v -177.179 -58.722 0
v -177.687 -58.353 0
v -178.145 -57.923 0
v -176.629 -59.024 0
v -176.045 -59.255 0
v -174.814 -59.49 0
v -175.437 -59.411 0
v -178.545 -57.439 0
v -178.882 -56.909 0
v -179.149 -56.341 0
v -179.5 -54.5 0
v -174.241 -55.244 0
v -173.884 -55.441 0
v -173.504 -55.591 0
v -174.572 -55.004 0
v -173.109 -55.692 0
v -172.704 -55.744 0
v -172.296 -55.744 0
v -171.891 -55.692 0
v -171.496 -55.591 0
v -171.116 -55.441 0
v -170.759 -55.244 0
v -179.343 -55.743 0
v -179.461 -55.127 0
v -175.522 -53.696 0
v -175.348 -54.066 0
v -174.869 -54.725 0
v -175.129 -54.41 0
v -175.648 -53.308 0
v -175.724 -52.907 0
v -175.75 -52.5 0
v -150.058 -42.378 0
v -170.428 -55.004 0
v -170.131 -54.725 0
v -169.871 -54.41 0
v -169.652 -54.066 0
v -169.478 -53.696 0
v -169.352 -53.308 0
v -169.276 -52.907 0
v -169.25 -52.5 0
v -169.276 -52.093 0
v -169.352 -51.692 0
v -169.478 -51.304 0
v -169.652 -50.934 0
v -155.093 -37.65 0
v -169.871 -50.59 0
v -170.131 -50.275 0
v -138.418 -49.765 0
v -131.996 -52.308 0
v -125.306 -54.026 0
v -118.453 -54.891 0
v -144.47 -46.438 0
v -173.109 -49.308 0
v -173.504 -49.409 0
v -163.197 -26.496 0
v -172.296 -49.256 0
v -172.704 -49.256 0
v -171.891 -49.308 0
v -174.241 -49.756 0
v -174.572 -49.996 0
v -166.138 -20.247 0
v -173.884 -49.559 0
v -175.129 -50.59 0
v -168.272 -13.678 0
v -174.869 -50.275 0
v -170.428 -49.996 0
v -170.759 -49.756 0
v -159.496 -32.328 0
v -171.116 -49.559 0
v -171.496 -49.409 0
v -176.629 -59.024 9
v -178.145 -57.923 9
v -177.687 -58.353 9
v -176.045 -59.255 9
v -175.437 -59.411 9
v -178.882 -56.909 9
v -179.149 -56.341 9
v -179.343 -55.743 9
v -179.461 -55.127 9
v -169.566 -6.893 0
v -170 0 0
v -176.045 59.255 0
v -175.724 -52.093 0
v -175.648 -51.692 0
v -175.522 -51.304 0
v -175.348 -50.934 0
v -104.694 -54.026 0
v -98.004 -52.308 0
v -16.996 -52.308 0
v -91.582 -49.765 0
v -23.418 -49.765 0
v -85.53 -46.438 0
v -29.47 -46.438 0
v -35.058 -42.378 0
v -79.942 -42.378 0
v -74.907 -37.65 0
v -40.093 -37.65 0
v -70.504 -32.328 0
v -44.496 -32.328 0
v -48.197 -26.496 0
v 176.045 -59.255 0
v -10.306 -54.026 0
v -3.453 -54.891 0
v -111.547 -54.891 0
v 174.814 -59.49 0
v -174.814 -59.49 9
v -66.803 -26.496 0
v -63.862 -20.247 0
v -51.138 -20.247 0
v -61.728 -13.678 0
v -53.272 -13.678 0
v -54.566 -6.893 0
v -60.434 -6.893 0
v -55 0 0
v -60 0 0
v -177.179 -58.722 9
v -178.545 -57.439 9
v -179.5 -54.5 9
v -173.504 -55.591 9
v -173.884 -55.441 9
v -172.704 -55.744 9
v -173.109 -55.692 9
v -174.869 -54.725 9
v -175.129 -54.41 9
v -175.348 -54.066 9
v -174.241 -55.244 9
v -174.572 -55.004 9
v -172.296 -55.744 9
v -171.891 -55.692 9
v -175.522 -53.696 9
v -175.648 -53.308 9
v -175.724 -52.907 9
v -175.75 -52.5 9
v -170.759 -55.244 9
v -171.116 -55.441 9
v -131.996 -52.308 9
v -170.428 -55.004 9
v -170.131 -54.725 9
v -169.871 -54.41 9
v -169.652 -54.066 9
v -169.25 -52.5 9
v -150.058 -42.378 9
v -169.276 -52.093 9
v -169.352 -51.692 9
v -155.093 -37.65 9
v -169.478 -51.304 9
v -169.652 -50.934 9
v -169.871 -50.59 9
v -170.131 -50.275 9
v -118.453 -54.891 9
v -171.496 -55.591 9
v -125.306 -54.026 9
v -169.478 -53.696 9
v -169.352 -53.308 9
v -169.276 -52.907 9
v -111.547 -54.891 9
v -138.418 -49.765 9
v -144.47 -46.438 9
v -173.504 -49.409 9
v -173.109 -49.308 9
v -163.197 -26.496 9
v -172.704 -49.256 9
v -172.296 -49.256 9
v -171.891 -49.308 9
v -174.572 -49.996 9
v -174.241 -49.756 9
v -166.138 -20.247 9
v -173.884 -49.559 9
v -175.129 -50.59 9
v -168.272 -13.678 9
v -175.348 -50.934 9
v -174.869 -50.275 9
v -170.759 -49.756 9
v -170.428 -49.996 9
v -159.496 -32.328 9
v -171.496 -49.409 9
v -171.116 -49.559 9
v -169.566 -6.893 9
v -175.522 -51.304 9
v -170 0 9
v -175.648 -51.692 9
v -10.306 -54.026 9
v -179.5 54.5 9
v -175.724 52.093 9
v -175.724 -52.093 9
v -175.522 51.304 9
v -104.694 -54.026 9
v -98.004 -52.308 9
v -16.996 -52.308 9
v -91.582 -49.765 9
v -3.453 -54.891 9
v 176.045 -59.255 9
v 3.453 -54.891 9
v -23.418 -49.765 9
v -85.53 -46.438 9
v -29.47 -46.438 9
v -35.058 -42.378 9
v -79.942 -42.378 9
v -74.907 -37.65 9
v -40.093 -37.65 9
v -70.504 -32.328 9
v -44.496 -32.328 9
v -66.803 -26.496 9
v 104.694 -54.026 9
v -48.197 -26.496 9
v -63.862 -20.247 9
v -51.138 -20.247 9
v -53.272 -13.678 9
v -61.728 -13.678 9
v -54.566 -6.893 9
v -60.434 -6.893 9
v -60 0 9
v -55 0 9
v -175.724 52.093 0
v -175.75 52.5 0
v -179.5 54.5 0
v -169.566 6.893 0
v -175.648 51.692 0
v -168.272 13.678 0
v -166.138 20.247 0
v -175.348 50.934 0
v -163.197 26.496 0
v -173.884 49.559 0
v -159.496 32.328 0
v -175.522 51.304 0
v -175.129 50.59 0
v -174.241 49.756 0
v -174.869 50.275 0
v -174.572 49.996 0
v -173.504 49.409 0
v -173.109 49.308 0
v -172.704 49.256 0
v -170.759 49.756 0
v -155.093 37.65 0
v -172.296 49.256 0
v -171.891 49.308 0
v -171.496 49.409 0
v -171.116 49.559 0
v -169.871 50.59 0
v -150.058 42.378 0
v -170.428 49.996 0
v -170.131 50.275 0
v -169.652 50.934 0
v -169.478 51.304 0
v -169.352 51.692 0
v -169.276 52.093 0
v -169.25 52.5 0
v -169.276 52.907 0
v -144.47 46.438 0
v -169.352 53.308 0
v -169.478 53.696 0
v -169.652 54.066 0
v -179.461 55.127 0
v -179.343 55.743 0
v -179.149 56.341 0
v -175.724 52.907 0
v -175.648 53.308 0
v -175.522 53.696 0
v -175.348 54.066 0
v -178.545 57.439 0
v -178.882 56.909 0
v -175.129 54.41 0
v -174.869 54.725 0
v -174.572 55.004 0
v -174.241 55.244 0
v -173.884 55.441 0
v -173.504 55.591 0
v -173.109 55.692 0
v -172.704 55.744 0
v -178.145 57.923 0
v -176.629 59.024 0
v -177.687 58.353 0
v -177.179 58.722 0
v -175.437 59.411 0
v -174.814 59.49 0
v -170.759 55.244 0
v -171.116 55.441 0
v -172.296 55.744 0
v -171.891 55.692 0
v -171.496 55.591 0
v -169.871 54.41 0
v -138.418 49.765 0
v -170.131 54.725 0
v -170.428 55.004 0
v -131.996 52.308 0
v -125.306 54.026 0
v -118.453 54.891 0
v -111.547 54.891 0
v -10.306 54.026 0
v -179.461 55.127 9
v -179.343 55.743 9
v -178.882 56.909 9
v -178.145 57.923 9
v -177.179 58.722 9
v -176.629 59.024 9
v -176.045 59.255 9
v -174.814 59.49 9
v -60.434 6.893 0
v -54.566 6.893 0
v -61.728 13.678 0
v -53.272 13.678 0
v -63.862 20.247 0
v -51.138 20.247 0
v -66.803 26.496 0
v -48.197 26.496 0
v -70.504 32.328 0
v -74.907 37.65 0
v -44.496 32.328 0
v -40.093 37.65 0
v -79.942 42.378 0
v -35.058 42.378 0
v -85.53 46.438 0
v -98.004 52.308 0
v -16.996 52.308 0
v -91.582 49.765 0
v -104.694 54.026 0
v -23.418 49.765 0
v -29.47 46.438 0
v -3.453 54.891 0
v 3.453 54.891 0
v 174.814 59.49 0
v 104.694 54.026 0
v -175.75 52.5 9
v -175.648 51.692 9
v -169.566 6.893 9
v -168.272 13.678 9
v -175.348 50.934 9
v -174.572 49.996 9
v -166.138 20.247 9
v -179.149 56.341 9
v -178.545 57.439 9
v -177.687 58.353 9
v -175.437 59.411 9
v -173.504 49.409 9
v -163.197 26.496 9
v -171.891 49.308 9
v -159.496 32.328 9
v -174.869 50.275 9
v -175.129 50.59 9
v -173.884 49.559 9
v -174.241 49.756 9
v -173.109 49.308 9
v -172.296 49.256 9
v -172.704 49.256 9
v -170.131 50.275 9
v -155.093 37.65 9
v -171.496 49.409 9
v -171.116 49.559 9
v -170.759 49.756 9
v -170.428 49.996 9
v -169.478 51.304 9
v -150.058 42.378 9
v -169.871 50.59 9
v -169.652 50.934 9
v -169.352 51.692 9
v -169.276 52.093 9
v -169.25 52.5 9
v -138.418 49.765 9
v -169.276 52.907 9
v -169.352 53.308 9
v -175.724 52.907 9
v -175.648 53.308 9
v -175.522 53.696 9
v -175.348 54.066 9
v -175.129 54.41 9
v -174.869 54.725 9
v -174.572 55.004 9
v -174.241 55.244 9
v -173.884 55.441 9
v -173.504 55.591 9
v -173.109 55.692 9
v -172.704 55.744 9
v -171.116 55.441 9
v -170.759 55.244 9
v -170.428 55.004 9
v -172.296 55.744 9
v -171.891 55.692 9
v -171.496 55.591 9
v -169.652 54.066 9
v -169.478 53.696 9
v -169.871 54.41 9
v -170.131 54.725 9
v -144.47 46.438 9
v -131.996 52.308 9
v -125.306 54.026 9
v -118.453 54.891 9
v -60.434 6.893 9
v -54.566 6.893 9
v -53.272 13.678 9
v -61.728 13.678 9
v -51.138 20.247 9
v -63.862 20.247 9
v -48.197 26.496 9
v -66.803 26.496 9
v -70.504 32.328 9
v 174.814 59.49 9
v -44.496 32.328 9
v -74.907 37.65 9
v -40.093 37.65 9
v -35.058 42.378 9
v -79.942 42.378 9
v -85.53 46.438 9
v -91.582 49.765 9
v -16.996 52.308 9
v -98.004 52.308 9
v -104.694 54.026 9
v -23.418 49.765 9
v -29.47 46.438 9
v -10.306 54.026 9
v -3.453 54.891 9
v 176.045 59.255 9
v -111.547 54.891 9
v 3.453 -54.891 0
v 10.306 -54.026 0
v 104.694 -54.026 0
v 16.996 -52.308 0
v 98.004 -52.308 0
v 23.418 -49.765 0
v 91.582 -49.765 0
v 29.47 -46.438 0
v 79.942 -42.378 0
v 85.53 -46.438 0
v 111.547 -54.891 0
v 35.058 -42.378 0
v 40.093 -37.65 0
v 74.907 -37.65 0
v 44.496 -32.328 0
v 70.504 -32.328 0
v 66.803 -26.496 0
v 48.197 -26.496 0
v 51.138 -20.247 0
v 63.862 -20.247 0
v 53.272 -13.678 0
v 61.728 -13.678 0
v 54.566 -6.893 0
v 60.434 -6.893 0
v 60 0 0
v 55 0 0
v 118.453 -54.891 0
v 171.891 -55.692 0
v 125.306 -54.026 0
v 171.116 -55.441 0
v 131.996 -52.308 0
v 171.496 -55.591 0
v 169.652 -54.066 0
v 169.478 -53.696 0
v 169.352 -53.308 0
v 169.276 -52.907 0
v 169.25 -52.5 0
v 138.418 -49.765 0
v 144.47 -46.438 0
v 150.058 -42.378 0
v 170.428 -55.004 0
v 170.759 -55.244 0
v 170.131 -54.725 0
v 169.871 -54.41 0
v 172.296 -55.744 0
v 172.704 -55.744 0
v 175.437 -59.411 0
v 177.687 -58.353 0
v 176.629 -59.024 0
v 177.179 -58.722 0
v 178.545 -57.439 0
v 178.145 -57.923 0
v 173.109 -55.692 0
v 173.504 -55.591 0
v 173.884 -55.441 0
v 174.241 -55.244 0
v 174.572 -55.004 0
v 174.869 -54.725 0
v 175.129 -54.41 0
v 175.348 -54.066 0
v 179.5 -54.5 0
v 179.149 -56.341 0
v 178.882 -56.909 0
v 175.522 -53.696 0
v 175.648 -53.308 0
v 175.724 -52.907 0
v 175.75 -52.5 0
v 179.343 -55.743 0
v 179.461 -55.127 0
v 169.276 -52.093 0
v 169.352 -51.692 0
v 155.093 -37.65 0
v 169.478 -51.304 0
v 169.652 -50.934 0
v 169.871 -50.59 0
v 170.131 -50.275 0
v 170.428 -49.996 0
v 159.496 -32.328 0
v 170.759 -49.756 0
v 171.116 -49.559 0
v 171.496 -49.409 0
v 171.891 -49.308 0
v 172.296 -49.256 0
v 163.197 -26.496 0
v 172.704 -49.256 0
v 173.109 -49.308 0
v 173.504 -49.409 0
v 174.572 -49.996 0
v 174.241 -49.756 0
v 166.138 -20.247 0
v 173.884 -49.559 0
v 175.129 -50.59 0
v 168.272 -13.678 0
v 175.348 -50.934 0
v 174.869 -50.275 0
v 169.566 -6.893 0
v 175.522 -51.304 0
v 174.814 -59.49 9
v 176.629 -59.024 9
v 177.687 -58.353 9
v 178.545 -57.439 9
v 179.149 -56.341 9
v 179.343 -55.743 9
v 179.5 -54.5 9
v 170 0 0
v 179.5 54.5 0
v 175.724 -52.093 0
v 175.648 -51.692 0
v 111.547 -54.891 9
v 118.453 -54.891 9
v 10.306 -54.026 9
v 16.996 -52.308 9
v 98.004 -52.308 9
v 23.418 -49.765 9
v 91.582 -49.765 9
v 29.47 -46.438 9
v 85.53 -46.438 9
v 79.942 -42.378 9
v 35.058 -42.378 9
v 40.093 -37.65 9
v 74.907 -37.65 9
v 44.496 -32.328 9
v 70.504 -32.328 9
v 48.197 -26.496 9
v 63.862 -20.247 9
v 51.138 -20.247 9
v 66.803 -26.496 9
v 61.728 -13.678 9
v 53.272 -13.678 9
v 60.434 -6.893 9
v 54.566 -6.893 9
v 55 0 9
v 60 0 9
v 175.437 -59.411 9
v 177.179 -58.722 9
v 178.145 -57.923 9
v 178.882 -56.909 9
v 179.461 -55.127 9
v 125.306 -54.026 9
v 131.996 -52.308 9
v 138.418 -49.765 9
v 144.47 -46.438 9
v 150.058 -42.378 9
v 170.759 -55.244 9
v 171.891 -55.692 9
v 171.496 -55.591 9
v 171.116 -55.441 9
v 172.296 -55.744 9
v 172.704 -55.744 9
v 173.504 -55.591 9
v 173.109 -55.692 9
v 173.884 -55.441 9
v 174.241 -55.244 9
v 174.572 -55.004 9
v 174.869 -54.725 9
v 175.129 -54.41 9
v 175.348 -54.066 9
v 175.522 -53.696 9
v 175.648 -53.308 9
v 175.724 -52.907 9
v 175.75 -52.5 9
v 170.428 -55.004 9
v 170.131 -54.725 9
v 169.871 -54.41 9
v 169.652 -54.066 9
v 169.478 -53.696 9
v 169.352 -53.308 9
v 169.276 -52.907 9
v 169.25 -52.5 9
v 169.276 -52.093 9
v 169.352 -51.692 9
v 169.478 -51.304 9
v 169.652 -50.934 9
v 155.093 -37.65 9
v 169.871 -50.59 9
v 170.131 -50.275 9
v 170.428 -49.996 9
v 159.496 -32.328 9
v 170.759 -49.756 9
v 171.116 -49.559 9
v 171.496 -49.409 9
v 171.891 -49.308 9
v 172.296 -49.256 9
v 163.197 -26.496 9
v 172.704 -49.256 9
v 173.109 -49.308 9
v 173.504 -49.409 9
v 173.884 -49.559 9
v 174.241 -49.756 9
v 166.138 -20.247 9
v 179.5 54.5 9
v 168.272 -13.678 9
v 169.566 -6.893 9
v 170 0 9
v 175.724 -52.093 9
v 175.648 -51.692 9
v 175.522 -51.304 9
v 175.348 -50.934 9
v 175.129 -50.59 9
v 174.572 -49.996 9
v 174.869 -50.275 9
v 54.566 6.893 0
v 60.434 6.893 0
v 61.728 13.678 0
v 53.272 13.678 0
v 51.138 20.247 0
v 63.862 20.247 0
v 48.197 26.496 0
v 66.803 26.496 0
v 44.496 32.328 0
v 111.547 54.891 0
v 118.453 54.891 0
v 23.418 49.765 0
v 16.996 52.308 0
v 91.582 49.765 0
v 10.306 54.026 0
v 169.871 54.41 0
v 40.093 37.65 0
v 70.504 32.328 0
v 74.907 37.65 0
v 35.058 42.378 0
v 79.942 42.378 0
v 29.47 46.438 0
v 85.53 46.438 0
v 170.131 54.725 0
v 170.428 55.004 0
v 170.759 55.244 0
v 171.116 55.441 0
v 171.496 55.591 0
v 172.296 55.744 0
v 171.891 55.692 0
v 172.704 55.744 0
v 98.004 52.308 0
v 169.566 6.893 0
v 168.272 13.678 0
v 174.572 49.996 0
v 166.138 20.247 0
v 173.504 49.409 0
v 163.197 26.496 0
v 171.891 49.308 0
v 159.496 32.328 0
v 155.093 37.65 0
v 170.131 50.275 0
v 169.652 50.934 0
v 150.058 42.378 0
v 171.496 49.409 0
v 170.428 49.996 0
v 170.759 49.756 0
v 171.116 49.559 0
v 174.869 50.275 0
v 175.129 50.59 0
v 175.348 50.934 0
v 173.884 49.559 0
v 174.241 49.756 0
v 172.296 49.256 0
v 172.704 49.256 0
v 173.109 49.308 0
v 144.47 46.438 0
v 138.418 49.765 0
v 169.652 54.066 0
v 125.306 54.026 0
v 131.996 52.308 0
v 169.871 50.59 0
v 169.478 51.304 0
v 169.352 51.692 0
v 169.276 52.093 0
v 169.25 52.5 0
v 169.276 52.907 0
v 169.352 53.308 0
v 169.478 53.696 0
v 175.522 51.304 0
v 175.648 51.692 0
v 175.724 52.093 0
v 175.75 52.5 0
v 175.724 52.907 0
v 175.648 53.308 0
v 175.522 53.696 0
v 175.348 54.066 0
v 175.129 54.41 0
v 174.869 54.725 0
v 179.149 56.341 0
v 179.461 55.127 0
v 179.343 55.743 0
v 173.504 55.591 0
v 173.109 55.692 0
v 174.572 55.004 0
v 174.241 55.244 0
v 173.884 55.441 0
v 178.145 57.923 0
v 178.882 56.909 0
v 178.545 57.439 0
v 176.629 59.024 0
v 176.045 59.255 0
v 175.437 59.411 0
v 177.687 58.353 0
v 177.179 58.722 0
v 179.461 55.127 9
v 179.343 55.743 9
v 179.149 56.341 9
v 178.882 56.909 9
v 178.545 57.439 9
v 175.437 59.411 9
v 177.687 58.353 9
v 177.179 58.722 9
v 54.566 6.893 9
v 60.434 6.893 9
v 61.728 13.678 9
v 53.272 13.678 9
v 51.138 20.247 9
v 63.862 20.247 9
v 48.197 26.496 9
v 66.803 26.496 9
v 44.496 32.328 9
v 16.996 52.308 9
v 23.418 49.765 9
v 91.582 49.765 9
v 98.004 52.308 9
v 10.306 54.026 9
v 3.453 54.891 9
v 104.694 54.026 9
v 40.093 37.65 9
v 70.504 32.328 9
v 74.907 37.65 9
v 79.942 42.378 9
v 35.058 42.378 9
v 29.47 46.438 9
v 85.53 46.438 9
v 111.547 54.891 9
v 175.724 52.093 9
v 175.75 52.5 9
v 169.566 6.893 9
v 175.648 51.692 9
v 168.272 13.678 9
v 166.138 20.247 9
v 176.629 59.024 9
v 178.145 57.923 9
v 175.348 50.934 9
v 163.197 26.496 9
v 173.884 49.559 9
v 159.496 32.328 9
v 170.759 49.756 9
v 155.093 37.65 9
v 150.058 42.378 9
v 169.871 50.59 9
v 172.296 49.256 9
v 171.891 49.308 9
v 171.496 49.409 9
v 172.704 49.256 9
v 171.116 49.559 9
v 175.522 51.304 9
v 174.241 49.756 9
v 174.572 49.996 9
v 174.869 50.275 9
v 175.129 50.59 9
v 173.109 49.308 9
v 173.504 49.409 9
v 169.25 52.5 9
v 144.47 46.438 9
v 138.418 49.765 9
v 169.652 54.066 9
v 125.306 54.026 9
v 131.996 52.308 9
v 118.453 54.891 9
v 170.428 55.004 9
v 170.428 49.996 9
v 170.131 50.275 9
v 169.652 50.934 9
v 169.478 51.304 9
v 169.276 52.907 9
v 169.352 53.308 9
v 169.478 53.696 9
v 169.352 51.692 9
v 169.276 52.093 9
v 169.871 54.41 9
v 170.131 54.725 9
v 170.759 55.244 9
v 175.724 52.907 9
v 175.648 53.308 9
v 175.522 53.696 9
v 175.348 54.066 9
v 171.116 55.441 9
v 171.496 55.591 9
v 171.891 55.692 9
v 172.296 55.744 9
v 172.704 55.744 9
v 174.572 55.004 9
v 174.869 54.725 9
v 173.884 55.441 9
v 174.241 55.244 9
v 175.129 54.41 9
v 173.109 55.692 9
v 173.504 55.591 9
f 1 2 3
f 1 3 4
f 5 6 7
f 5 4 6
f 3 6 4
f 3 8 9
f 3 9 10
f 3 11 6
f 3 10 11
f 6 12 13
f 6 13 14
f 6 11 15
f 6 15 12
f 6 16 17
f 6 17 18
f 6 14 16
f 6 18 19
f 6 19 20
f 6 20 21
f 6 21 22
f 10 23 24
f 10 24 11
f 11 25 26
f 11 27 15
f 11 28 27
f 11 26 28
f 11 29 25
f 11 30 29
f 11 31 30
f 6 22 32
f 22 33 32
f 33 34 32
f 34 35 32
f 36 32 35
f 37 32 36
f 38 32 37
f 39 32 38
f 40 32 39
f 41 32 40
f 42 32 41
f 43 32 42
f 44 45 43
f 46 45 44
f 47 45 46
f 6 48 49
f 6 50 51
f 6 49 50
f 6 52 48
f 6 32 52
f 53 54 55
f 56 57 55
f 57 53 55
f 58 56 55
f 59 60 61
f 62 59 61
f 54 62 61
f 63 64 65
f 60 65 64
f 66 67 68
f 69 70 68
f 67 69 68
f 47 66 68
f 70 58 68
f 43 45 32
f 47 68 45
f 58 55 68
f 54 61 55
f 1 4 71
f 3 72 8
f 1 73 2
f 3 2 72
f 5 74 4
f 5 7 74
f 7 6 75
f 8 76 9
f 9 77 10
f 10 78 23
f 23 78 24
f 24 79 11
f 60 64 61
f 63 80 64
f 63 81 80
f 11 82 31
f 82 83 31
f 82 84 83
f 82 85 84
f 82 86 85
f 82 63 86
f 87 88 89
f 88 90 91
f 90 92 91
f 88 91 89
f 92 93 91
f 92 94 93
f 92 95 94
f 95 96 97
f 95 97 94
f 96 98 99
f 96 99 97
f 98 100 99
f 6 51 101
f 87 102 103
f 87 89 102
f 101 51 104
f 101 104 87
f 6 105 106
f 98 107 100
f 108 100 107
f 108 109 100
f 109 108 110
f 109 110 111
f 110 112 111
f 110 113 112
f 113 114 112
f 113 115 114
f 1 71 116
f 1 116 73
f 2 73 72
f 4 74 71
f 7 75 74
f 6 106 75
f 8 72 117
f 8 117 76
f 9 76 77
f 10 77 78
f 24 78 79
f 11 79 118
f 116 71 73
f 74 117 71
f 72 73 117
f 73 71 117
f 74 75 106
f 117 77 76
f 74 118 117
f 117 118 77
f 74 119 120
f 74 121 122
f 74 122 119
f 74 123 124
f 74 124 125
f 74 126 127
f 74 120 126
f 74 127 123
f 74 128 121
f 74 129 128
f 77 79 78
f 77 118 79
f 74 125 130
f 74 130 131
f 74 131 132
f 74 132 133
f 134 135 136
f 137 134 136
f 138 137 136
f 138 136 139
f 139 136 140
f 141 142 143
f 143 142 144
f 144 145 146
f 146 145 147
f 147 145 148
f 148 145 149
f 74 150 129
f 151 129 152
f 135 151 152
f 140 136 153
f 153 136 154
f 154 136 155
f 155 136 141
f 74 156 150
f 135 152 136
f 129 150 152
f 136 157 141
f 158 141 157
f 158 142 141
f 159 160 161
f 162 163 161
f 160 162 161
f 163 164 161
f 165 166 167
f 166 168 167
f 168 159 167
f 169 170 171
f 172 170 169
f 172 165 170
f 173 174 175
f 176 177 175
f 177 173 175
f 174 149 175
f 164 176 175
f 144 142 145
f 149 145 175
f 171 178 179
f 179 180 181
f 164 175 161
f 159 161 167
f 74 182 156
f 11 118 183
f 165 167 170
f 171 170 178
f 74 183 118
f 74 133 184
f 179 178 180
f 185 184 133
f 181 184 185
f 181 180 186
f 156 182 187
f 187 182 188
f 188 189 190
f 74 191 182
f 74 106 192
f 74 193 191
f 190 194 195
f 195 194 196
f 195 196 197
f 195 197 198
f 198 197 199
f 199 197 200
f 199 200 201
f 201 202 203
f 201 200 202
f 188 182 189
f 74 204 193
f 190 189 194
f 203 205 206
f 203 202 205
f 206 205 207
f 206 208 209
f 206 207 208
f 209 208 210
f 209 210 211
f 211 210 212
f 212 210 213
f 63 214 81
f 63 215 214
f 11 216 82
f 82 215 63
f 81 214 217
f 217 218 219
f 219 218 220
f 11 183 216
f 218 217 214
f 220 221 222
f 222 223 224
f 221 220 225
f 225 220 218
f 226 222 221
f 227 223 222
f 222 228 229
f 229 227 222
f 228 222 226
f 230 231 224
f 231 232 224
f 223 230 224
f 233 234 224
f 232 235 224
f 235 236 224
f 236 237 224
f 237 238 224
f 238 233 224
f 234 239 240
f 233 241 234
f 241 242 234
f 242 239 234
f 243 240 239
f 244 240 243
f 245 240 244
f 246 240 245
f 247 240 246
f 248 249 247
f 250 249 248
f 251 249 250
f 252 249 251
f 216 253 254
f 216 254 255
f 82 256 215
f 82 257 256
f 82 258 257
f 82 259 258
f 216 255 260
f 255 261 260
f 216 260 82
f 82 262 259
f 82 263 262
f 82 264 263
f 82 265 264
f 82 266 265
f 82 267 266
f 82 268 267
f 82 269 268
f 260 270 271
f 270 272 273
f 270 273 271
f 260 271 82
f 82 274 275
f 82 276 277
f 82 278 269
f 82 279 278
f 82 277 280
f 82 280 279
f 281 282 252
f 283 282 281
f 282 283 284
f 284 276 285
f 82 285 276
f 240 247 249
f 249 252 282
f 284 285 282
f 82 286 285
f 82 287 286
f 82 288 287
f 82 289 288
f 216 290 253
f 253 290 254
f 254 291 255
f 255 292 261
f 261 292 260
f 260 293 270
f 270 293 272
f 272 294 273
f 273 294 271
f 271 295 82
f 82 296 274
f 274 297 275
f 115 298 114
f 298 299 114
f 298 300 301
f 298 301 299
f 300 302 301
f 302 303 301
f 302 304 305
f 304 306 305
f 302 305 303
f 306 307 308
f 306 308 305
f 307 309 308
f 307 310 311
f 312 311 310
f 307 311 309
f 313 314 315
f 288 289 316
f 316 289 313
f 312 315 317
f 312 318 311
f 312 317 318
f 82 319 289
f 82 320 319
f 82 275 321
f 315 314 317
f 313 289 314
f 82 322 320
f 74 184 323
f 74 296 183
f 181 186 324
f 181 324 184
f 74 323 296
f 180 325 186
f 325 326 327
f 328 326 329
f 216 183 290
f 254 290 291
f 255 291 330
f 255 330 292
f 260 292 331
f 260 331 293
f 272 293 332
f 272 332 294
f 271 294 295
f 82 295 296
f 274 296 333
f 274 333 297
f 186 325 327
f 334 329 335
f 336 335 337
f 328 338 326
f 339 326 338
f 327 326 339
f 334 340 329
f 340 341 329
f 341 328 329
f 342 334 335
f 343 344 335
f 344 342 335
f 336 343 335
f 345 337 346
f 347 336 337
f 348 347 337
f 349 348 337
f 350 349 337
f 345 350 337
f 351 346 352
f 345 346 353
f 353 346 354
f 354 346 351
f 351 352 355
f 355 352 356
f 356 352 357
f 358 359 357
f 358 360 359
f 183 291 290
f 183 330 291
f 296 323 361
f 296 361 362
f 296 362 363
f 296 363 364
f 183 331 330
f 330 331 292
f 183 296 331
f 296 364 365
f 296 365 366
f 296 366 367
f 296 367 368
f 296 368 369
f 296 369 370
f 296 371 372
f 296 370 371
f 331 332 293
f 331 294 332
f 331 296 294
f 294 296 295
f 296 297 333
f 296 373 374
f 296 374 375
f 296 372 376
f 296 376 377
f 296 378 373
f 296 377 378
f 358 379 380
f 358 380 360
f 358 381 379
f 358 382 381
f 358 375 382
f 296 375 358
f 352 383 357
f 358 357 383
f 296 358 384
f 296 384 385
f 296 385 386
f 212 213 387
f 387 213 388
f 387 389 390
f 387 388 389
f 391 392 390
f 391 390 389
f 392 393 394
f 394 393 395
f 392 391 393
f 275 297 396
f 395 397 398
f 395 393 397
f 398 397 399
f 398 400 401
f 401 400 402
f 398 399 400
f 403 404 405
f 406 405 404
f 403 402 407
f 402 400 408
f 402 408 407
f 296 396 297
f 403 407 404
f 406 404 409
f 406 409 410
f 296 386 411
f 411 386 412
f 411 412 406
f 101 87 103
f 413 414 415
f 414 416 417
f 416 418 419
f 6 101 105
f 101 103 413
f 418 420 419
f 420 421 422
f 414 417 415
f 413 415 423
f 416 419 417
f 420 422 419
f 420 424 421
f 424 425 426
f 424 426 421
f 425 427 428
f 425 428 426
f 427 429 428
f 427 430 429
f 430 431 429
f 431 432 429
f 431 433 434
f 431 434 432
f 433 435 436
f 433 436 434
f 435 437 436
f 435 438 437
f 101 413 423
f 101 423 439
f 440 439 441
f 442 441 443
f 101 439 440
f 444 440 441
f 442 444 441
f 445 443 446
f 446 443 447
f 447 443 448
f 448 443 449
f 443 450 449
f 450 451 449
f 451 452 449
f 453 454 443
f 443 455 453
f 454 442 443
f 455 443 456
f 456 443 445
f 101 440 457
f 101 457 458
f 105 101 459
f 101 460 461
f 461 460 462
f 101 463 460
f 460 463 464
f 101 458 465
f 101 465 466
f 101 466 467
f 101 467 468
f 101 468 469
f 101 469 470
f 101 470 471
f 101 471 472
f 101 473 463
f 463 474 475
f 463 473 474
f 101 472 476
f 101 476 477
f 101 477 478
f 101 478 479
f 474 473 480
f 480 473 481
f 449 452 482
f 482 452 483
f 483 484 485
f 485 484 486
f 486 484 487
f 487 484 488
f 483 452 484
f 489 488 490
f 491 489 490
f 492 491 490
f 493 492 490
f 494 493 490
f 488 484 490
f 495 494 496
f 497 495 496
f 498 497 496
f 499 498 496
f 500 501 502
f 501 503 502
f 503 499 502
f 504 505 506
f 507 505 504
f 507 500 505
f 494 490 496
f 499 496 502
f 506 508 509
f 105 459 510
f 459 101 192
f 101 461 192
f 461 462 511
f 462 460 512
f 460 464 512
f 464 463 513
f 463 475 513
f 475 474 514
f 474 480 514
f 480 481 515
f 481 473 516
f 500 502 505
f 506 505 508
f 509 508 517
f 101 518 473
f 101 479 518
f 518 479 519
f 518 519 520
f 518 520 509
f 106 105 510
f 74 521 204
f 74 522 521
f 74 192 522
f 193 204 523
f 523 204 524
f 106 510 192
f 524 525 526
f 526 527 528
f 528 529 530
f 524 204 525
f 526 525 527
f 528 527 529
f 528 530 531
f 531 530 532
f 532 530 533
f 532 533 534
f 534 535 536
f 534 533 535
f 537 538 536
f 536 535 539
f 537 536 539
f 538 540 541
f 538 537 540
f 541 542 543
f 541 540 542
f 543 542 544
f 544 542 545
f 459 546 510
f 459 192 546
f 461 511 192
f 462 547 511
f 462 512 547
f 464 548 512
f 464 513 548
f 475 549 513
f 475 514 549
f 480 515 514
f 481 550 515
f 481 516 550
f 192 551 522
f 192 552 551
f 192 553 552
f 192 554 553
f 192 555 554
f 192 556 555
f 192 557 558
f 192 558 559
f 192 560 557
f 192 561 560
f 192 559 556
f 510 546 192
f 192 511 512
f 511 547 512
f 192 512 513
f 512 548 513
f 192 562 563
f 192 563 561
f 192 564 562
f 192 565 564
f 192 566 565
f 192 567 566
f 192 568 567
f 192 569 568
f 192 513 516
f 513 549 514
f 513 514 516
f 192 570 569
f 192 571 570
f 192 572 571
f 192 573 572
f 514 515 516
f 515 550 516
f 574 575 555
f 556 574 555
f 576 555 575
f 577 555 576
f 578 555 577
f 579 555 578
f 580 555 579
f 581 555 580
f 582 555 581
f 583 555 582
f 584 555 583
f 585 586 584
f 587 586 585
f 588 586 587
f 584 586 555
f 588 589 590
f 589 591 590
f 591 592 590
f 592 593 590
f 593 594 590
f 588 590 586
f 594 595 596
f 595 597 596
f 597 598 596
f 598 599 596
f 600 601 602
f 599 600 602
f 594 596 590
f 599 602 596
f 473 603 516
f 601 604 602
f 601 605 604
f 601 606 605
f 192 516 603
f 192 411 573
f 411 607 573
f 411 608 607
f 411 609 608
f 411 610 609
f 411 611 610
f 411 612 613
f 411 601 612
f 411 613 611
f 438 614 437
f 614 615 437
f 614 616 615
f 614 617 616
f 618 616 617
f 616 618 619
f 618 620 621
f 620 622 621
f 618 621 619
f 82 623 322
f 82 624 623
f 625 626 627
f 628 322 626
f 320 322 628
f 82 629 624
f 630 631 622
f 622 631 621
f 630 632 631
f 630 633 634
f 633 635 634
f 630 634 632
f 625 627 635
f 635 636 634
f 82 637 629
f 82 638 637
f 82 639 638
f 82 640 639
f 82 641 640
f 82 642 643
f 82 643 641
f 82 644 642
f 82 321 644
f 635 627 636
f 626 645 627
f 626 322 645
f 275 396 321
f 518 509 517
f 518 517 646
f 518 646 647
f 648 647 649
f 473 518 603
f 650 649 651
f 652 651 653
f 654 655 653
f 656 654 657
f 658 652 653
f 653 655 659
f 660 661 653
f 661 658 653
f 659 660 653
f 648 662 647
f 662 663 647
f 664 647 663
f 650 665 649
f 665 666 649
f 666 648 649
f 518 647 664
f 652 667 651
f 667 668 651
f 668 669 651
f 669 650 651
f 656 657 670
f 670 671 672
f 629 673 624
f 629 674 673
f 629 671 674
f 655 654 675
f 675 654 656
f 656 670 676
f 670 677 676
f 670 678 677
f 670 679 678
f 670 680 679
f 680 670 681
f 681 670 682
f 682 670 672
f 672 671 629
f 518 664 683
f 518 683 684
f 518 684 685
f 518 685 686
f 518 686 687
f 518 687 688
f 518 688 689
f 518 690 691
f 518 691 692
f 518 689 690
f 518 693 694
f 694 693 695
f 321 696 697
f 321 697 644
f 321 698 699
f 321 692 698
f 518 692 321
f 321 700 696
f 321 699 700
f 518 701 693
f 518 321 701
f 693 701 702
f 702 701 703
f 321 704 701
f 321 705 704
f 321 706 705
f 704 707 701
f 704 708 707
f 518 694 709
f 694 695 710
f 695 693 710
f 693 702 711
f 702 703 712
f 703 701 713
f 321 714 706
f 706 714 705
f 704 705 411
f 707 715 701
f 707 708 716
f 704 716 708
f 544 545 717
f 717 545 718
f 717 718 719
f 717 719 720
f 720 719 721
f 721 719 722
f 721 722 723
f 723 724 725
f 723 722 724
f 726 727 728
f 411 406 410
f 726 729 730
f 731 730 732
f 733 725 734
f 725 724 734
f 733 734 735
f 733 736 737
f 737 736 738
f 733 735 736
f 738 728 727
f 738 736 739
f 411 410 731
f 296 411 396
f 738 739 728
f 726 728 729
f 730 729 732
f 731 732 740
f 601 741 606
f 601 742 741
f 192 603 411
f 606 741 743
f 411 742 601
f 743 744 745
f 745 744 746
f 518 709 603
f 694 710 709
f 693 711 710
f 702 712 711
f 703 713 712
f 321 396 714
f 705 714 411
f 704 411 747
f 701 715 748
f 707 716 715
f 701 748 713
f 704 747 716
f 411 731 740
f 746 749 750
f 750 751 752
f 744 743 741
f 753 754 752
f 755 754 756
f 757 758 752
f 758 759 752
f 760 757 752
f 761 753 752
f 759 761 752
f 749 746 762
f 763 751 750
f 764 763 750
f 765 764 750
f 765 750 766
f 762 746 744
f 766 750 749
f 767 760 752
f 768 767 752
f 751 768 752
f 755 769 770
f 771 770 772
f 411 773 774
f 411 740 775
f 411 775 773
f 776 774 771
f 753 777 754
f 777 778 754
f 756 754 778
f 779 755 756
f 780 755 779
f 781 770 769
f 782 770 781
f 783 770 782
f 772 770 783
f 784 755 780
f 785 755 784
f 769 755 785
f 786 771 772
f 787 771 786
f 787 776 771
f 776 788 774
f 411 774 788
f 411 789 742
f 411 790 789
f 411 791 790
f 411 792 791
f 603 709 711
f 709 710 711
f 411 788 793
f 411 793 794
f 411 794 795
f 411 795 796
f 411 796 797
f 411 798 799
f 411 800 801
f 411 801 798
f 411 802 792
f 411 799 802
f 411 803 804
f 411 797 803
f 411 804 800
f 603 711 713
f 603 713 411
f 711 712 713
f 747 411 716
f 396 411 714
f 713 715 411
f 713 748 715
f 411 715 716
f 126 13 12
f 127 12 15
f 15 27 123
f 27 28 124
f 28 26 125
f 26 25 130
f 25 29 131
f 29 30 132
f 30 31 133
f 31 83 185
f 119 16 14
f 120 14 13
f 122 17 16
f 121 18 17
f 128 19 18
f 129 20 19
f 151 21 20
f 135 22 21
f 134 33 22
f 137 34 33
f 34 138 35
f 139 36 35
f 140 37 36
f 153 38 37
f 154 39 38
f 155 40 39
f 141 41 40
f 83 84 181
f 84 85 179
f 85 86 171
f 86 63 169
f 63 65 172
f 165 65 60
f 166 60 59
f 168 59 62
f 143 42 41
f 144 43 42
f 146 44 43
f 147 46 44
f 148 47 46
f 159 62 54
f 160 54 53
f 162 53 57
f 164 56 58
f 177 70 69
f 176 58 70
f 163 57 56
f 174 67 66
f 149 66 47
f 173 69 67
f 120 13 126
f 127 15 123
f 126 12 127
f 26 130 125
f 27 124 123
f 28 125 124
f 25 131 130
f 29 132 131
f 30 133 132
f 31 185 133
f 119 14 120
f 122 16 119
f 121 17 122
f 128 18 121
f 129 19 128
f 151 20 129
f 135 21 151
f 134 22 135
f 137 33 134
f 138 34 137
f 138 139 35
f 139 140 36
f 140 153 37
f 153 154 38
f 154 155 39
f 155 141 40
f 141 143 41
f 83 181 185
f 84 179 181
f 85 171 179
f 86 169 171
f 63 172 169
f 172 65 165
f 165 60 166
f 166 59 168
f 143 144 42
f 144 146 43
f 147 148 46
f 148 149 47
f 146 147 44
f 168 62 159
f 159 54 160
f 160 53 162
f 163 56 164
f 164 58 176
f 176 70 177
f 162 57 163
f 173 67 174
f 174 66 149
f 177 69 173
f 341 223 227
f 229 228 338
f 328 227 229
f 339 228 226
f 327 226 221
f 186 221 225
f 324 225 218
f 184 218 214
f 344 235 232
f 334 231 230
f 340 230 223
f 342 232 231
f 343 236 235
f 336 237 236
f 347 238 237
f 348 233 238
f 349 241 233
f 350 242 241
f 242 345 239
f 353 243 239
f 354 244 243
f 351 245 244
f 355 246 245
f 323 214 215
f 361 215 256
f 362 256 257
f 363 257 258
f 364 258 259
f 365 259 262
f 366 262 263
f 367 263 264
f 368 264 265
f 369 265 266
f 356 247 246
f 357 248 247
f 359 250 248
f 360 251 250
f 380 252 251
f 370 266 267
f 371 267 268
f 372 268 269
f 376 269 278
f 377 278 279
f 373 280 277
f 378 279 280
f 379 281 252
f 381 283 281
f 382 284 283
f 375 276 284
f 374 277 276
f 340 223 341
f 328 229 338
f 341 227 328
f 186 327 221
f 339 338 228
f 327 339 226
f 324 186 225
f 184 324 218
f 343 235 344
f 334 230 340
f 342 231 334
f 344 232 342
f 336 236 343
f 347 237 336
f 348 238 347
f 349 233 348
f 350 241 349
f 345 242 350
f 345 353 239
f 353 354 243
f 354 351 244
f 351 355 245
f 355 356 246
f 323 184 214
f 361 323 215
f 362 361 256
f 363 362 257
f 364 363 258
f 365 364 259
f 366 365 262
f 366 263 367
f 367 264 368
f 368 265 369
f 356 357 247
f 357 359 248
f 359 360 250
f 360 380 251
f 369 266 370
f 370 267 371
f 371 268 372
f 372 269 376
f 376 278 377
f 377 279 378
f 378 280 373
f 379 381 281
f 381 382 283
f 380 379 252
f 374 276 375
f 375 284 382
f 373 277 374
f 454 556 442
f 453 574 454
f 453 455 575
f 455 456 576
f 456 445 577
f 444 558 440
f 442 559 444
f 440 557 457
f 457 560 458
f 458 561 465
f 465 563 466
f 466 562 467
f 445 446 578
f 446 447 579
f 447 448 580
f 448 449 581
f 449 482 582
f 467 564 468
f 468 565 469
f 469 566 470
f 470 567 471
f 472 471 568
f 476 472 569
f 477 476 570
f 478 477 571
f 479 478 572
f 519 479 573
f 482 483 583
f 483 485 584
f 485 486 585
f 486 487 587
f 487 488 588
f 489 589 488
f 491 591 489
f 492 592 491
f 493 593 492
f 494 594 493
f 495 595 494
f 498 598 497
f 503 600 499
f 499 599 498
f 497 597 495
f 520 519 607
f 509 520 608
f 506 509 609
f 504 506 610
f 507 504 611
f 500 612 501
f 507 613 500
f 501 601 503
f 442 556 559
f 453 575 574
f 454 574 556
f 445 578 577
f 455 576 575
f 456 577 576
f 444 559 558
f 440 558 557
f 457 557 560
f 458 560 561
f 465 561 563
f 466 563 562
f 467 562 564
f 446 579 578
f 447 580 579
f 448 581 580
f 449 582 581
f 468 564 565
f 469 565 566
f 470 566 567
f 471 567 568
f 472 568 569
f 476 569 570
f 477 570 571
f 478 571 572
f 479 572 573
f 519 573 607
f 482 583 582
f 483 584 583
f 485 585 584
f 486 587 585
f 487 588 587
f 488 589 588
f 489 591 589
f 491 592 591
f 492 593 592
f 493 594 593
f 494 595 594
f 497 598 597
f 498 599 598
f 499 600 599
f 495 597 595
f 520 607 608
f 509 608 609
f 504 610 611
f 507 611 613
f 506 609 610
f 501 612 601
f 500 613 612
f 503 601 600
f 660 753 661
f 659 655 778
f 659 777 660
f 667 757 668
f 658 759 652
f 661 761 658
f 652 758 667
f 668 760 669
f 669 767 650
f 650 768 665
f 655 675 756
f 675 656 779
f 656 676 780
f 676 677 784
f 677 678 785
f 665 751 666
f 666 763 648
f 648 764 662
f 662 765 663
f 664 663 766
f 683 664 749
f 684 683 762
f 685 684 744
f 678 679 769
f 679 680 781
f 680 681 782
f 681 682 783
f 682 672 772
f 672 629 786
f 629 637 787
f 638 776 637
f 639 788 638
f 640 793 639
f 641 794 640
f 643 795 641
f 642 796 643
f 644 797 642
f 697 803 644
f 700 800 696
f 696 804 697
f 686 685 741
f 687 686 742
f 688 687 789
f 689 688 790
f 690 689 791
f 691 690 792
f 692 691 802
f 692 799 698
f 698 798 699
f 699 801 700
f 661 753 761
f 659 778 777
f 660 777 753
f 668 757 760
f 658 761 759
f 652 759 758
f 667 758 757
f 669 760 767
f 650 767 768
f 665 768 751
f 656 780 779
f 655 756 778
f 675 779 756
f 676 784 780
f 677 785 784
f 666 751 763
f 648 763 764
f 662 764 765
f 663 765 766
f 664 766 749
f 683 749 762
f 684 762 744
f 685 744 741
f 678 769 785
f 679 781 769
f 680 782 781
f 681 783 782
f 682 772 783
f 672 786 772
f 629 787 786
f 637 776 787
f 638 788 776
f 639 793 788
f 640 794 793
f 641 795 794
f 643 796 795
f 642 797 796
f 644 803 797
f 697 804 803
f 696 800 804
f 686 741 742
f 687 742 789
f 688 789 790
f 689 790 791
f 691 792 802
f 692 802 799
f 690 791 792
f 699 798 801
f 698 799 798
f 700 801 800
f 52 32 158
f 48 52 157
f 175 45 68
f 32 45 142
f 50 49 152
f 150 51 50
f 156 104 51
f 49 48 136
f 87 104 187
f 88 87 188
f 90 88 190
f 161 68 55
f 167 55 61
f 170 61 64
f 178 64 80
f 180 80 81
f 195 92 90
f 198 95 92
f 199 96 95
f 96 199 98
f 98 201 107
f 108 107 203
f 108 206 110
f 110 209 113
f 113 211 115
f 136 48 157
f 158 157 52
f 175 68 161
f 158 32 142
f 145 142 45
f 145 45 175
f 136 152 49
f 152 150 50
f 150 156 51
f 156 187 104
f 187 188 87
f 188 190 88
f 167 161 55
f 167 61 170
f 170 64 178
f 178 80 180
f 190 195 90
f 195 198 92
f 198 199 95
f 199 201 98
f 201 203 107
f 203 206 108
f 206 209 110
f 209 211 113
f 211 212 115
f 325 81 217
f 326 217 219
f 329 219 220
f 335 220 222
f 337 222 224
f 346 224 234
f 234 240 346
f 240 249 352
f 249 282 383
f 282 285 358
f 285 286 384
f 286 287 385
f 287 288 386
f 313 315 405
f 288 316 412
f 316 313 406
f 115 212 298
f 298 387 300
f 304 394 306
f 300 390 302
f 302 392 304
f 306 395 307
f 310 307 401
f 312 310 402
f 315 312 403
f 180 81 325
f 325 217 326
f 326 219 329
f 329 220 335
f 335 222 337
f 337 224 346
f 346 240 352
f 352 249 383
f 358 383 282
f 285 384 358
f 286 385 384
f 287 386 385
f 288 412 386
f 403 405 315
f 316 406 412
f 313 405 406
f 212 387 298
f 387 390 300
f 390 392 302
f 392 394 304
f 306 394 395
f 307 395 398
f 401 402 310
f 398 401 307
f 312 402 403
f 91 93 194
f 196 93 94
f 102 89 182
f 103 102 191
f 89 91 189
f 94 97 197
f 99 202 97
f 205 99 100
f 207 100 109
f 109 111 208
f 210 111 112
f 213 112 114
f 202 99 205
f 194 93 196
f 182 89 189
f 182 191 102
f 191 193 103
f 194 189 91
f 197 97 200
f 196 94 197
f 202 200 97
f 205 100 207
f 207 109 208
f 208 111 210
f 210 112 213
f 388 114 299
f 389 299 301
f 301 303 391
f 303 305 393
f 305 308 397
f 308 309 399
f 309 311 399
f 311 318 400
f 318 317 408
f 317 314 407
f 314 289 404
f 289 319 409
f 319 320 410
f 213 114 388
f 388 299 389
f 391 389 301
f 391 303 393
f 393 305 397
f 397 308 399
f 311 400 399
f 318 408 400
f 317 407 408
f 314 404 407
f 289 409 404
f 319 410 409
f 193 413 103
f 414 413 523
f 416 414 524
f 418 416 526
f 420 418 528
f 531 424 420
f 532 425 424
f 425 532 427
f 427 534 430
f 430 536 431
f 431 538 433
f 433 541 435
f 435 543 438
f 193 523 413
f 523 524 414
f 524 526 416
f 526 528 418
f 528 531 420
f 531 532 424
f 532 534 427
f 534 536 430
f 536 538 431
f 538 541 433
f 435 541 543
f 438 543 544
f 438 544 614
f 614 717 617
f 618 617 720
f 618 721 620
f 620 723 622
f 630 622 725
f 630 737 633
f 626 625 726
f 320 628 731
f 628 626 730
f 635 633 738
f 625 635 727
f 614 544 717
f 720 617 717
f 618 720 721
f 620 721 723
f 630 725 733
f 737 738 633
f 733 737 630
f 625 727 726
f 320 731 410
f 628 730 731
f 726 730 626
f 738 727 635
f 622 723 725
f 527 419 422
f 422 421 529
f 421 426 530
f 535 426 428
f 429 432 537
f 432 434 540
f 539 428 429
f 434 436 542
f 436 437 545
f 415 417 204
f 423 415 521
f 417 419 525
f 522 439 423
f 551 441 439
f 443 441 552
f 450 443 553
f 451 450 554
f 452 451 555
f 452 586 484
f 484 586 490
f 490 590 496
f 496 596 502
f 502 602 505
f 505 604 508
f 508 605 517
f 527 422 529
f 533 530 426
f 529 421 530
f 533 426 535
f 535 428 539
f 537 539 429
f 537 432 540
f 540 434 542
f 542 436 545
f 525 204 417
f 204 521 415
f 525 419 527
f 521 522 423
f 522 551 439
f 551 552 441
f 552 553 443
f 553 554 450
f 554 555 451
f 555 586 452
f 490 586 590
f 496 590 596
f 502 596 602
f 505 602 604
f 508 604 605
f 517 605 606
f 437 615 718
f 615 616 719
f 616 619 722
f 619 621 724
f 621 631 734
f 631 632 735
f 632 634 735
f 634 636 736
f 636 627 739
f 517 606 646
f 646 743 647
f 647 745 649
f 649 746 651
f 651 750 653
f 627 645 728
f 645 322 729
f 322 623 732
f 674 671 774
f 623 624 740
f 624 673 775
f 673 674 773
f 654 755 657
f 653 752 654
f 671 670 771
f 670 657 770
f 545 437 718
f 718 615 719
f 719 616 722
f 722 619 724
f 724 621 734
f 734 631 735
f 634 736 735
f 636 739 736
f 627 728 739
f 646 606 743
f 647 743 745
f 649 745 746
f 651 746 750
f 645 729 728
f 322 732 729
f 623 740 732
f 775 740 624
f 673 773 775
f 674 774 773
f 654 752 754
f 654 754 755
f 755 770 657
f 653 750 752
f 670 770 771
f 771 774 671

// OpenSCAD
$fn = 50;

difference() {
	union() {
		hull() {
			translate(v = [-174.5, 54.5, 0]) {
				cylinder(h = 9, r = 5);
			}
			translate(v = [174.5, 54.5, 0]) {
				cylinder(h = 9, r = 5);
			}
			translate(v = [-174.5, -54.5, 0]) {
				cylinder(h = 9, r = 5);
			}
			translate(v = [174.5, -54.5, 0]) {
				cylinder(h = 9, r = 5);
			}
		}
	}
	union() {
		translate(v = [-172.5, -52.5, -100.0]) {
			cylinder(h = 200, r = 3.25);
		}
		translate(v = [-172.5, 52.5, -100.0]) {
			cylinder(h = 200, r = 3.25);
		}
		translate(v = [172.5, -52.5, -100.0]) {
			cylinder(h = 200, r = 3.25);
		}
		translate(v = [172.5, 52.5, -100.0]) {
			cylinder(h = 200, r = 3.25);
		}
		translate(v = [-172.5, -52.5, -100.0]) {
			cylinder(h = 200, r = 1.8);
		}
		translate(v = [-172.5, 52.5, -100.0]) {
			cylinder(h = 200, r = 1.8);
		}
		translate(v = [172.5, -52.5, -100.0]) {
			cylinder(h = 200, r = 1.8);
		}
		translate(v = [172.5, 52.5, -100.0]) {
			cylinder(h = 200, r = 1.8);
		}
		translate(v = [-115.0, 0, 0.0]) {
			cylinder(h = 9, r = 55.0);
		}
		cylinder(h = 9, r = 55.0);
		translate(v = [115.0, 0, 0.0]) {
			cylinder(h = 9, r = 55.0);
		}
	}
}
